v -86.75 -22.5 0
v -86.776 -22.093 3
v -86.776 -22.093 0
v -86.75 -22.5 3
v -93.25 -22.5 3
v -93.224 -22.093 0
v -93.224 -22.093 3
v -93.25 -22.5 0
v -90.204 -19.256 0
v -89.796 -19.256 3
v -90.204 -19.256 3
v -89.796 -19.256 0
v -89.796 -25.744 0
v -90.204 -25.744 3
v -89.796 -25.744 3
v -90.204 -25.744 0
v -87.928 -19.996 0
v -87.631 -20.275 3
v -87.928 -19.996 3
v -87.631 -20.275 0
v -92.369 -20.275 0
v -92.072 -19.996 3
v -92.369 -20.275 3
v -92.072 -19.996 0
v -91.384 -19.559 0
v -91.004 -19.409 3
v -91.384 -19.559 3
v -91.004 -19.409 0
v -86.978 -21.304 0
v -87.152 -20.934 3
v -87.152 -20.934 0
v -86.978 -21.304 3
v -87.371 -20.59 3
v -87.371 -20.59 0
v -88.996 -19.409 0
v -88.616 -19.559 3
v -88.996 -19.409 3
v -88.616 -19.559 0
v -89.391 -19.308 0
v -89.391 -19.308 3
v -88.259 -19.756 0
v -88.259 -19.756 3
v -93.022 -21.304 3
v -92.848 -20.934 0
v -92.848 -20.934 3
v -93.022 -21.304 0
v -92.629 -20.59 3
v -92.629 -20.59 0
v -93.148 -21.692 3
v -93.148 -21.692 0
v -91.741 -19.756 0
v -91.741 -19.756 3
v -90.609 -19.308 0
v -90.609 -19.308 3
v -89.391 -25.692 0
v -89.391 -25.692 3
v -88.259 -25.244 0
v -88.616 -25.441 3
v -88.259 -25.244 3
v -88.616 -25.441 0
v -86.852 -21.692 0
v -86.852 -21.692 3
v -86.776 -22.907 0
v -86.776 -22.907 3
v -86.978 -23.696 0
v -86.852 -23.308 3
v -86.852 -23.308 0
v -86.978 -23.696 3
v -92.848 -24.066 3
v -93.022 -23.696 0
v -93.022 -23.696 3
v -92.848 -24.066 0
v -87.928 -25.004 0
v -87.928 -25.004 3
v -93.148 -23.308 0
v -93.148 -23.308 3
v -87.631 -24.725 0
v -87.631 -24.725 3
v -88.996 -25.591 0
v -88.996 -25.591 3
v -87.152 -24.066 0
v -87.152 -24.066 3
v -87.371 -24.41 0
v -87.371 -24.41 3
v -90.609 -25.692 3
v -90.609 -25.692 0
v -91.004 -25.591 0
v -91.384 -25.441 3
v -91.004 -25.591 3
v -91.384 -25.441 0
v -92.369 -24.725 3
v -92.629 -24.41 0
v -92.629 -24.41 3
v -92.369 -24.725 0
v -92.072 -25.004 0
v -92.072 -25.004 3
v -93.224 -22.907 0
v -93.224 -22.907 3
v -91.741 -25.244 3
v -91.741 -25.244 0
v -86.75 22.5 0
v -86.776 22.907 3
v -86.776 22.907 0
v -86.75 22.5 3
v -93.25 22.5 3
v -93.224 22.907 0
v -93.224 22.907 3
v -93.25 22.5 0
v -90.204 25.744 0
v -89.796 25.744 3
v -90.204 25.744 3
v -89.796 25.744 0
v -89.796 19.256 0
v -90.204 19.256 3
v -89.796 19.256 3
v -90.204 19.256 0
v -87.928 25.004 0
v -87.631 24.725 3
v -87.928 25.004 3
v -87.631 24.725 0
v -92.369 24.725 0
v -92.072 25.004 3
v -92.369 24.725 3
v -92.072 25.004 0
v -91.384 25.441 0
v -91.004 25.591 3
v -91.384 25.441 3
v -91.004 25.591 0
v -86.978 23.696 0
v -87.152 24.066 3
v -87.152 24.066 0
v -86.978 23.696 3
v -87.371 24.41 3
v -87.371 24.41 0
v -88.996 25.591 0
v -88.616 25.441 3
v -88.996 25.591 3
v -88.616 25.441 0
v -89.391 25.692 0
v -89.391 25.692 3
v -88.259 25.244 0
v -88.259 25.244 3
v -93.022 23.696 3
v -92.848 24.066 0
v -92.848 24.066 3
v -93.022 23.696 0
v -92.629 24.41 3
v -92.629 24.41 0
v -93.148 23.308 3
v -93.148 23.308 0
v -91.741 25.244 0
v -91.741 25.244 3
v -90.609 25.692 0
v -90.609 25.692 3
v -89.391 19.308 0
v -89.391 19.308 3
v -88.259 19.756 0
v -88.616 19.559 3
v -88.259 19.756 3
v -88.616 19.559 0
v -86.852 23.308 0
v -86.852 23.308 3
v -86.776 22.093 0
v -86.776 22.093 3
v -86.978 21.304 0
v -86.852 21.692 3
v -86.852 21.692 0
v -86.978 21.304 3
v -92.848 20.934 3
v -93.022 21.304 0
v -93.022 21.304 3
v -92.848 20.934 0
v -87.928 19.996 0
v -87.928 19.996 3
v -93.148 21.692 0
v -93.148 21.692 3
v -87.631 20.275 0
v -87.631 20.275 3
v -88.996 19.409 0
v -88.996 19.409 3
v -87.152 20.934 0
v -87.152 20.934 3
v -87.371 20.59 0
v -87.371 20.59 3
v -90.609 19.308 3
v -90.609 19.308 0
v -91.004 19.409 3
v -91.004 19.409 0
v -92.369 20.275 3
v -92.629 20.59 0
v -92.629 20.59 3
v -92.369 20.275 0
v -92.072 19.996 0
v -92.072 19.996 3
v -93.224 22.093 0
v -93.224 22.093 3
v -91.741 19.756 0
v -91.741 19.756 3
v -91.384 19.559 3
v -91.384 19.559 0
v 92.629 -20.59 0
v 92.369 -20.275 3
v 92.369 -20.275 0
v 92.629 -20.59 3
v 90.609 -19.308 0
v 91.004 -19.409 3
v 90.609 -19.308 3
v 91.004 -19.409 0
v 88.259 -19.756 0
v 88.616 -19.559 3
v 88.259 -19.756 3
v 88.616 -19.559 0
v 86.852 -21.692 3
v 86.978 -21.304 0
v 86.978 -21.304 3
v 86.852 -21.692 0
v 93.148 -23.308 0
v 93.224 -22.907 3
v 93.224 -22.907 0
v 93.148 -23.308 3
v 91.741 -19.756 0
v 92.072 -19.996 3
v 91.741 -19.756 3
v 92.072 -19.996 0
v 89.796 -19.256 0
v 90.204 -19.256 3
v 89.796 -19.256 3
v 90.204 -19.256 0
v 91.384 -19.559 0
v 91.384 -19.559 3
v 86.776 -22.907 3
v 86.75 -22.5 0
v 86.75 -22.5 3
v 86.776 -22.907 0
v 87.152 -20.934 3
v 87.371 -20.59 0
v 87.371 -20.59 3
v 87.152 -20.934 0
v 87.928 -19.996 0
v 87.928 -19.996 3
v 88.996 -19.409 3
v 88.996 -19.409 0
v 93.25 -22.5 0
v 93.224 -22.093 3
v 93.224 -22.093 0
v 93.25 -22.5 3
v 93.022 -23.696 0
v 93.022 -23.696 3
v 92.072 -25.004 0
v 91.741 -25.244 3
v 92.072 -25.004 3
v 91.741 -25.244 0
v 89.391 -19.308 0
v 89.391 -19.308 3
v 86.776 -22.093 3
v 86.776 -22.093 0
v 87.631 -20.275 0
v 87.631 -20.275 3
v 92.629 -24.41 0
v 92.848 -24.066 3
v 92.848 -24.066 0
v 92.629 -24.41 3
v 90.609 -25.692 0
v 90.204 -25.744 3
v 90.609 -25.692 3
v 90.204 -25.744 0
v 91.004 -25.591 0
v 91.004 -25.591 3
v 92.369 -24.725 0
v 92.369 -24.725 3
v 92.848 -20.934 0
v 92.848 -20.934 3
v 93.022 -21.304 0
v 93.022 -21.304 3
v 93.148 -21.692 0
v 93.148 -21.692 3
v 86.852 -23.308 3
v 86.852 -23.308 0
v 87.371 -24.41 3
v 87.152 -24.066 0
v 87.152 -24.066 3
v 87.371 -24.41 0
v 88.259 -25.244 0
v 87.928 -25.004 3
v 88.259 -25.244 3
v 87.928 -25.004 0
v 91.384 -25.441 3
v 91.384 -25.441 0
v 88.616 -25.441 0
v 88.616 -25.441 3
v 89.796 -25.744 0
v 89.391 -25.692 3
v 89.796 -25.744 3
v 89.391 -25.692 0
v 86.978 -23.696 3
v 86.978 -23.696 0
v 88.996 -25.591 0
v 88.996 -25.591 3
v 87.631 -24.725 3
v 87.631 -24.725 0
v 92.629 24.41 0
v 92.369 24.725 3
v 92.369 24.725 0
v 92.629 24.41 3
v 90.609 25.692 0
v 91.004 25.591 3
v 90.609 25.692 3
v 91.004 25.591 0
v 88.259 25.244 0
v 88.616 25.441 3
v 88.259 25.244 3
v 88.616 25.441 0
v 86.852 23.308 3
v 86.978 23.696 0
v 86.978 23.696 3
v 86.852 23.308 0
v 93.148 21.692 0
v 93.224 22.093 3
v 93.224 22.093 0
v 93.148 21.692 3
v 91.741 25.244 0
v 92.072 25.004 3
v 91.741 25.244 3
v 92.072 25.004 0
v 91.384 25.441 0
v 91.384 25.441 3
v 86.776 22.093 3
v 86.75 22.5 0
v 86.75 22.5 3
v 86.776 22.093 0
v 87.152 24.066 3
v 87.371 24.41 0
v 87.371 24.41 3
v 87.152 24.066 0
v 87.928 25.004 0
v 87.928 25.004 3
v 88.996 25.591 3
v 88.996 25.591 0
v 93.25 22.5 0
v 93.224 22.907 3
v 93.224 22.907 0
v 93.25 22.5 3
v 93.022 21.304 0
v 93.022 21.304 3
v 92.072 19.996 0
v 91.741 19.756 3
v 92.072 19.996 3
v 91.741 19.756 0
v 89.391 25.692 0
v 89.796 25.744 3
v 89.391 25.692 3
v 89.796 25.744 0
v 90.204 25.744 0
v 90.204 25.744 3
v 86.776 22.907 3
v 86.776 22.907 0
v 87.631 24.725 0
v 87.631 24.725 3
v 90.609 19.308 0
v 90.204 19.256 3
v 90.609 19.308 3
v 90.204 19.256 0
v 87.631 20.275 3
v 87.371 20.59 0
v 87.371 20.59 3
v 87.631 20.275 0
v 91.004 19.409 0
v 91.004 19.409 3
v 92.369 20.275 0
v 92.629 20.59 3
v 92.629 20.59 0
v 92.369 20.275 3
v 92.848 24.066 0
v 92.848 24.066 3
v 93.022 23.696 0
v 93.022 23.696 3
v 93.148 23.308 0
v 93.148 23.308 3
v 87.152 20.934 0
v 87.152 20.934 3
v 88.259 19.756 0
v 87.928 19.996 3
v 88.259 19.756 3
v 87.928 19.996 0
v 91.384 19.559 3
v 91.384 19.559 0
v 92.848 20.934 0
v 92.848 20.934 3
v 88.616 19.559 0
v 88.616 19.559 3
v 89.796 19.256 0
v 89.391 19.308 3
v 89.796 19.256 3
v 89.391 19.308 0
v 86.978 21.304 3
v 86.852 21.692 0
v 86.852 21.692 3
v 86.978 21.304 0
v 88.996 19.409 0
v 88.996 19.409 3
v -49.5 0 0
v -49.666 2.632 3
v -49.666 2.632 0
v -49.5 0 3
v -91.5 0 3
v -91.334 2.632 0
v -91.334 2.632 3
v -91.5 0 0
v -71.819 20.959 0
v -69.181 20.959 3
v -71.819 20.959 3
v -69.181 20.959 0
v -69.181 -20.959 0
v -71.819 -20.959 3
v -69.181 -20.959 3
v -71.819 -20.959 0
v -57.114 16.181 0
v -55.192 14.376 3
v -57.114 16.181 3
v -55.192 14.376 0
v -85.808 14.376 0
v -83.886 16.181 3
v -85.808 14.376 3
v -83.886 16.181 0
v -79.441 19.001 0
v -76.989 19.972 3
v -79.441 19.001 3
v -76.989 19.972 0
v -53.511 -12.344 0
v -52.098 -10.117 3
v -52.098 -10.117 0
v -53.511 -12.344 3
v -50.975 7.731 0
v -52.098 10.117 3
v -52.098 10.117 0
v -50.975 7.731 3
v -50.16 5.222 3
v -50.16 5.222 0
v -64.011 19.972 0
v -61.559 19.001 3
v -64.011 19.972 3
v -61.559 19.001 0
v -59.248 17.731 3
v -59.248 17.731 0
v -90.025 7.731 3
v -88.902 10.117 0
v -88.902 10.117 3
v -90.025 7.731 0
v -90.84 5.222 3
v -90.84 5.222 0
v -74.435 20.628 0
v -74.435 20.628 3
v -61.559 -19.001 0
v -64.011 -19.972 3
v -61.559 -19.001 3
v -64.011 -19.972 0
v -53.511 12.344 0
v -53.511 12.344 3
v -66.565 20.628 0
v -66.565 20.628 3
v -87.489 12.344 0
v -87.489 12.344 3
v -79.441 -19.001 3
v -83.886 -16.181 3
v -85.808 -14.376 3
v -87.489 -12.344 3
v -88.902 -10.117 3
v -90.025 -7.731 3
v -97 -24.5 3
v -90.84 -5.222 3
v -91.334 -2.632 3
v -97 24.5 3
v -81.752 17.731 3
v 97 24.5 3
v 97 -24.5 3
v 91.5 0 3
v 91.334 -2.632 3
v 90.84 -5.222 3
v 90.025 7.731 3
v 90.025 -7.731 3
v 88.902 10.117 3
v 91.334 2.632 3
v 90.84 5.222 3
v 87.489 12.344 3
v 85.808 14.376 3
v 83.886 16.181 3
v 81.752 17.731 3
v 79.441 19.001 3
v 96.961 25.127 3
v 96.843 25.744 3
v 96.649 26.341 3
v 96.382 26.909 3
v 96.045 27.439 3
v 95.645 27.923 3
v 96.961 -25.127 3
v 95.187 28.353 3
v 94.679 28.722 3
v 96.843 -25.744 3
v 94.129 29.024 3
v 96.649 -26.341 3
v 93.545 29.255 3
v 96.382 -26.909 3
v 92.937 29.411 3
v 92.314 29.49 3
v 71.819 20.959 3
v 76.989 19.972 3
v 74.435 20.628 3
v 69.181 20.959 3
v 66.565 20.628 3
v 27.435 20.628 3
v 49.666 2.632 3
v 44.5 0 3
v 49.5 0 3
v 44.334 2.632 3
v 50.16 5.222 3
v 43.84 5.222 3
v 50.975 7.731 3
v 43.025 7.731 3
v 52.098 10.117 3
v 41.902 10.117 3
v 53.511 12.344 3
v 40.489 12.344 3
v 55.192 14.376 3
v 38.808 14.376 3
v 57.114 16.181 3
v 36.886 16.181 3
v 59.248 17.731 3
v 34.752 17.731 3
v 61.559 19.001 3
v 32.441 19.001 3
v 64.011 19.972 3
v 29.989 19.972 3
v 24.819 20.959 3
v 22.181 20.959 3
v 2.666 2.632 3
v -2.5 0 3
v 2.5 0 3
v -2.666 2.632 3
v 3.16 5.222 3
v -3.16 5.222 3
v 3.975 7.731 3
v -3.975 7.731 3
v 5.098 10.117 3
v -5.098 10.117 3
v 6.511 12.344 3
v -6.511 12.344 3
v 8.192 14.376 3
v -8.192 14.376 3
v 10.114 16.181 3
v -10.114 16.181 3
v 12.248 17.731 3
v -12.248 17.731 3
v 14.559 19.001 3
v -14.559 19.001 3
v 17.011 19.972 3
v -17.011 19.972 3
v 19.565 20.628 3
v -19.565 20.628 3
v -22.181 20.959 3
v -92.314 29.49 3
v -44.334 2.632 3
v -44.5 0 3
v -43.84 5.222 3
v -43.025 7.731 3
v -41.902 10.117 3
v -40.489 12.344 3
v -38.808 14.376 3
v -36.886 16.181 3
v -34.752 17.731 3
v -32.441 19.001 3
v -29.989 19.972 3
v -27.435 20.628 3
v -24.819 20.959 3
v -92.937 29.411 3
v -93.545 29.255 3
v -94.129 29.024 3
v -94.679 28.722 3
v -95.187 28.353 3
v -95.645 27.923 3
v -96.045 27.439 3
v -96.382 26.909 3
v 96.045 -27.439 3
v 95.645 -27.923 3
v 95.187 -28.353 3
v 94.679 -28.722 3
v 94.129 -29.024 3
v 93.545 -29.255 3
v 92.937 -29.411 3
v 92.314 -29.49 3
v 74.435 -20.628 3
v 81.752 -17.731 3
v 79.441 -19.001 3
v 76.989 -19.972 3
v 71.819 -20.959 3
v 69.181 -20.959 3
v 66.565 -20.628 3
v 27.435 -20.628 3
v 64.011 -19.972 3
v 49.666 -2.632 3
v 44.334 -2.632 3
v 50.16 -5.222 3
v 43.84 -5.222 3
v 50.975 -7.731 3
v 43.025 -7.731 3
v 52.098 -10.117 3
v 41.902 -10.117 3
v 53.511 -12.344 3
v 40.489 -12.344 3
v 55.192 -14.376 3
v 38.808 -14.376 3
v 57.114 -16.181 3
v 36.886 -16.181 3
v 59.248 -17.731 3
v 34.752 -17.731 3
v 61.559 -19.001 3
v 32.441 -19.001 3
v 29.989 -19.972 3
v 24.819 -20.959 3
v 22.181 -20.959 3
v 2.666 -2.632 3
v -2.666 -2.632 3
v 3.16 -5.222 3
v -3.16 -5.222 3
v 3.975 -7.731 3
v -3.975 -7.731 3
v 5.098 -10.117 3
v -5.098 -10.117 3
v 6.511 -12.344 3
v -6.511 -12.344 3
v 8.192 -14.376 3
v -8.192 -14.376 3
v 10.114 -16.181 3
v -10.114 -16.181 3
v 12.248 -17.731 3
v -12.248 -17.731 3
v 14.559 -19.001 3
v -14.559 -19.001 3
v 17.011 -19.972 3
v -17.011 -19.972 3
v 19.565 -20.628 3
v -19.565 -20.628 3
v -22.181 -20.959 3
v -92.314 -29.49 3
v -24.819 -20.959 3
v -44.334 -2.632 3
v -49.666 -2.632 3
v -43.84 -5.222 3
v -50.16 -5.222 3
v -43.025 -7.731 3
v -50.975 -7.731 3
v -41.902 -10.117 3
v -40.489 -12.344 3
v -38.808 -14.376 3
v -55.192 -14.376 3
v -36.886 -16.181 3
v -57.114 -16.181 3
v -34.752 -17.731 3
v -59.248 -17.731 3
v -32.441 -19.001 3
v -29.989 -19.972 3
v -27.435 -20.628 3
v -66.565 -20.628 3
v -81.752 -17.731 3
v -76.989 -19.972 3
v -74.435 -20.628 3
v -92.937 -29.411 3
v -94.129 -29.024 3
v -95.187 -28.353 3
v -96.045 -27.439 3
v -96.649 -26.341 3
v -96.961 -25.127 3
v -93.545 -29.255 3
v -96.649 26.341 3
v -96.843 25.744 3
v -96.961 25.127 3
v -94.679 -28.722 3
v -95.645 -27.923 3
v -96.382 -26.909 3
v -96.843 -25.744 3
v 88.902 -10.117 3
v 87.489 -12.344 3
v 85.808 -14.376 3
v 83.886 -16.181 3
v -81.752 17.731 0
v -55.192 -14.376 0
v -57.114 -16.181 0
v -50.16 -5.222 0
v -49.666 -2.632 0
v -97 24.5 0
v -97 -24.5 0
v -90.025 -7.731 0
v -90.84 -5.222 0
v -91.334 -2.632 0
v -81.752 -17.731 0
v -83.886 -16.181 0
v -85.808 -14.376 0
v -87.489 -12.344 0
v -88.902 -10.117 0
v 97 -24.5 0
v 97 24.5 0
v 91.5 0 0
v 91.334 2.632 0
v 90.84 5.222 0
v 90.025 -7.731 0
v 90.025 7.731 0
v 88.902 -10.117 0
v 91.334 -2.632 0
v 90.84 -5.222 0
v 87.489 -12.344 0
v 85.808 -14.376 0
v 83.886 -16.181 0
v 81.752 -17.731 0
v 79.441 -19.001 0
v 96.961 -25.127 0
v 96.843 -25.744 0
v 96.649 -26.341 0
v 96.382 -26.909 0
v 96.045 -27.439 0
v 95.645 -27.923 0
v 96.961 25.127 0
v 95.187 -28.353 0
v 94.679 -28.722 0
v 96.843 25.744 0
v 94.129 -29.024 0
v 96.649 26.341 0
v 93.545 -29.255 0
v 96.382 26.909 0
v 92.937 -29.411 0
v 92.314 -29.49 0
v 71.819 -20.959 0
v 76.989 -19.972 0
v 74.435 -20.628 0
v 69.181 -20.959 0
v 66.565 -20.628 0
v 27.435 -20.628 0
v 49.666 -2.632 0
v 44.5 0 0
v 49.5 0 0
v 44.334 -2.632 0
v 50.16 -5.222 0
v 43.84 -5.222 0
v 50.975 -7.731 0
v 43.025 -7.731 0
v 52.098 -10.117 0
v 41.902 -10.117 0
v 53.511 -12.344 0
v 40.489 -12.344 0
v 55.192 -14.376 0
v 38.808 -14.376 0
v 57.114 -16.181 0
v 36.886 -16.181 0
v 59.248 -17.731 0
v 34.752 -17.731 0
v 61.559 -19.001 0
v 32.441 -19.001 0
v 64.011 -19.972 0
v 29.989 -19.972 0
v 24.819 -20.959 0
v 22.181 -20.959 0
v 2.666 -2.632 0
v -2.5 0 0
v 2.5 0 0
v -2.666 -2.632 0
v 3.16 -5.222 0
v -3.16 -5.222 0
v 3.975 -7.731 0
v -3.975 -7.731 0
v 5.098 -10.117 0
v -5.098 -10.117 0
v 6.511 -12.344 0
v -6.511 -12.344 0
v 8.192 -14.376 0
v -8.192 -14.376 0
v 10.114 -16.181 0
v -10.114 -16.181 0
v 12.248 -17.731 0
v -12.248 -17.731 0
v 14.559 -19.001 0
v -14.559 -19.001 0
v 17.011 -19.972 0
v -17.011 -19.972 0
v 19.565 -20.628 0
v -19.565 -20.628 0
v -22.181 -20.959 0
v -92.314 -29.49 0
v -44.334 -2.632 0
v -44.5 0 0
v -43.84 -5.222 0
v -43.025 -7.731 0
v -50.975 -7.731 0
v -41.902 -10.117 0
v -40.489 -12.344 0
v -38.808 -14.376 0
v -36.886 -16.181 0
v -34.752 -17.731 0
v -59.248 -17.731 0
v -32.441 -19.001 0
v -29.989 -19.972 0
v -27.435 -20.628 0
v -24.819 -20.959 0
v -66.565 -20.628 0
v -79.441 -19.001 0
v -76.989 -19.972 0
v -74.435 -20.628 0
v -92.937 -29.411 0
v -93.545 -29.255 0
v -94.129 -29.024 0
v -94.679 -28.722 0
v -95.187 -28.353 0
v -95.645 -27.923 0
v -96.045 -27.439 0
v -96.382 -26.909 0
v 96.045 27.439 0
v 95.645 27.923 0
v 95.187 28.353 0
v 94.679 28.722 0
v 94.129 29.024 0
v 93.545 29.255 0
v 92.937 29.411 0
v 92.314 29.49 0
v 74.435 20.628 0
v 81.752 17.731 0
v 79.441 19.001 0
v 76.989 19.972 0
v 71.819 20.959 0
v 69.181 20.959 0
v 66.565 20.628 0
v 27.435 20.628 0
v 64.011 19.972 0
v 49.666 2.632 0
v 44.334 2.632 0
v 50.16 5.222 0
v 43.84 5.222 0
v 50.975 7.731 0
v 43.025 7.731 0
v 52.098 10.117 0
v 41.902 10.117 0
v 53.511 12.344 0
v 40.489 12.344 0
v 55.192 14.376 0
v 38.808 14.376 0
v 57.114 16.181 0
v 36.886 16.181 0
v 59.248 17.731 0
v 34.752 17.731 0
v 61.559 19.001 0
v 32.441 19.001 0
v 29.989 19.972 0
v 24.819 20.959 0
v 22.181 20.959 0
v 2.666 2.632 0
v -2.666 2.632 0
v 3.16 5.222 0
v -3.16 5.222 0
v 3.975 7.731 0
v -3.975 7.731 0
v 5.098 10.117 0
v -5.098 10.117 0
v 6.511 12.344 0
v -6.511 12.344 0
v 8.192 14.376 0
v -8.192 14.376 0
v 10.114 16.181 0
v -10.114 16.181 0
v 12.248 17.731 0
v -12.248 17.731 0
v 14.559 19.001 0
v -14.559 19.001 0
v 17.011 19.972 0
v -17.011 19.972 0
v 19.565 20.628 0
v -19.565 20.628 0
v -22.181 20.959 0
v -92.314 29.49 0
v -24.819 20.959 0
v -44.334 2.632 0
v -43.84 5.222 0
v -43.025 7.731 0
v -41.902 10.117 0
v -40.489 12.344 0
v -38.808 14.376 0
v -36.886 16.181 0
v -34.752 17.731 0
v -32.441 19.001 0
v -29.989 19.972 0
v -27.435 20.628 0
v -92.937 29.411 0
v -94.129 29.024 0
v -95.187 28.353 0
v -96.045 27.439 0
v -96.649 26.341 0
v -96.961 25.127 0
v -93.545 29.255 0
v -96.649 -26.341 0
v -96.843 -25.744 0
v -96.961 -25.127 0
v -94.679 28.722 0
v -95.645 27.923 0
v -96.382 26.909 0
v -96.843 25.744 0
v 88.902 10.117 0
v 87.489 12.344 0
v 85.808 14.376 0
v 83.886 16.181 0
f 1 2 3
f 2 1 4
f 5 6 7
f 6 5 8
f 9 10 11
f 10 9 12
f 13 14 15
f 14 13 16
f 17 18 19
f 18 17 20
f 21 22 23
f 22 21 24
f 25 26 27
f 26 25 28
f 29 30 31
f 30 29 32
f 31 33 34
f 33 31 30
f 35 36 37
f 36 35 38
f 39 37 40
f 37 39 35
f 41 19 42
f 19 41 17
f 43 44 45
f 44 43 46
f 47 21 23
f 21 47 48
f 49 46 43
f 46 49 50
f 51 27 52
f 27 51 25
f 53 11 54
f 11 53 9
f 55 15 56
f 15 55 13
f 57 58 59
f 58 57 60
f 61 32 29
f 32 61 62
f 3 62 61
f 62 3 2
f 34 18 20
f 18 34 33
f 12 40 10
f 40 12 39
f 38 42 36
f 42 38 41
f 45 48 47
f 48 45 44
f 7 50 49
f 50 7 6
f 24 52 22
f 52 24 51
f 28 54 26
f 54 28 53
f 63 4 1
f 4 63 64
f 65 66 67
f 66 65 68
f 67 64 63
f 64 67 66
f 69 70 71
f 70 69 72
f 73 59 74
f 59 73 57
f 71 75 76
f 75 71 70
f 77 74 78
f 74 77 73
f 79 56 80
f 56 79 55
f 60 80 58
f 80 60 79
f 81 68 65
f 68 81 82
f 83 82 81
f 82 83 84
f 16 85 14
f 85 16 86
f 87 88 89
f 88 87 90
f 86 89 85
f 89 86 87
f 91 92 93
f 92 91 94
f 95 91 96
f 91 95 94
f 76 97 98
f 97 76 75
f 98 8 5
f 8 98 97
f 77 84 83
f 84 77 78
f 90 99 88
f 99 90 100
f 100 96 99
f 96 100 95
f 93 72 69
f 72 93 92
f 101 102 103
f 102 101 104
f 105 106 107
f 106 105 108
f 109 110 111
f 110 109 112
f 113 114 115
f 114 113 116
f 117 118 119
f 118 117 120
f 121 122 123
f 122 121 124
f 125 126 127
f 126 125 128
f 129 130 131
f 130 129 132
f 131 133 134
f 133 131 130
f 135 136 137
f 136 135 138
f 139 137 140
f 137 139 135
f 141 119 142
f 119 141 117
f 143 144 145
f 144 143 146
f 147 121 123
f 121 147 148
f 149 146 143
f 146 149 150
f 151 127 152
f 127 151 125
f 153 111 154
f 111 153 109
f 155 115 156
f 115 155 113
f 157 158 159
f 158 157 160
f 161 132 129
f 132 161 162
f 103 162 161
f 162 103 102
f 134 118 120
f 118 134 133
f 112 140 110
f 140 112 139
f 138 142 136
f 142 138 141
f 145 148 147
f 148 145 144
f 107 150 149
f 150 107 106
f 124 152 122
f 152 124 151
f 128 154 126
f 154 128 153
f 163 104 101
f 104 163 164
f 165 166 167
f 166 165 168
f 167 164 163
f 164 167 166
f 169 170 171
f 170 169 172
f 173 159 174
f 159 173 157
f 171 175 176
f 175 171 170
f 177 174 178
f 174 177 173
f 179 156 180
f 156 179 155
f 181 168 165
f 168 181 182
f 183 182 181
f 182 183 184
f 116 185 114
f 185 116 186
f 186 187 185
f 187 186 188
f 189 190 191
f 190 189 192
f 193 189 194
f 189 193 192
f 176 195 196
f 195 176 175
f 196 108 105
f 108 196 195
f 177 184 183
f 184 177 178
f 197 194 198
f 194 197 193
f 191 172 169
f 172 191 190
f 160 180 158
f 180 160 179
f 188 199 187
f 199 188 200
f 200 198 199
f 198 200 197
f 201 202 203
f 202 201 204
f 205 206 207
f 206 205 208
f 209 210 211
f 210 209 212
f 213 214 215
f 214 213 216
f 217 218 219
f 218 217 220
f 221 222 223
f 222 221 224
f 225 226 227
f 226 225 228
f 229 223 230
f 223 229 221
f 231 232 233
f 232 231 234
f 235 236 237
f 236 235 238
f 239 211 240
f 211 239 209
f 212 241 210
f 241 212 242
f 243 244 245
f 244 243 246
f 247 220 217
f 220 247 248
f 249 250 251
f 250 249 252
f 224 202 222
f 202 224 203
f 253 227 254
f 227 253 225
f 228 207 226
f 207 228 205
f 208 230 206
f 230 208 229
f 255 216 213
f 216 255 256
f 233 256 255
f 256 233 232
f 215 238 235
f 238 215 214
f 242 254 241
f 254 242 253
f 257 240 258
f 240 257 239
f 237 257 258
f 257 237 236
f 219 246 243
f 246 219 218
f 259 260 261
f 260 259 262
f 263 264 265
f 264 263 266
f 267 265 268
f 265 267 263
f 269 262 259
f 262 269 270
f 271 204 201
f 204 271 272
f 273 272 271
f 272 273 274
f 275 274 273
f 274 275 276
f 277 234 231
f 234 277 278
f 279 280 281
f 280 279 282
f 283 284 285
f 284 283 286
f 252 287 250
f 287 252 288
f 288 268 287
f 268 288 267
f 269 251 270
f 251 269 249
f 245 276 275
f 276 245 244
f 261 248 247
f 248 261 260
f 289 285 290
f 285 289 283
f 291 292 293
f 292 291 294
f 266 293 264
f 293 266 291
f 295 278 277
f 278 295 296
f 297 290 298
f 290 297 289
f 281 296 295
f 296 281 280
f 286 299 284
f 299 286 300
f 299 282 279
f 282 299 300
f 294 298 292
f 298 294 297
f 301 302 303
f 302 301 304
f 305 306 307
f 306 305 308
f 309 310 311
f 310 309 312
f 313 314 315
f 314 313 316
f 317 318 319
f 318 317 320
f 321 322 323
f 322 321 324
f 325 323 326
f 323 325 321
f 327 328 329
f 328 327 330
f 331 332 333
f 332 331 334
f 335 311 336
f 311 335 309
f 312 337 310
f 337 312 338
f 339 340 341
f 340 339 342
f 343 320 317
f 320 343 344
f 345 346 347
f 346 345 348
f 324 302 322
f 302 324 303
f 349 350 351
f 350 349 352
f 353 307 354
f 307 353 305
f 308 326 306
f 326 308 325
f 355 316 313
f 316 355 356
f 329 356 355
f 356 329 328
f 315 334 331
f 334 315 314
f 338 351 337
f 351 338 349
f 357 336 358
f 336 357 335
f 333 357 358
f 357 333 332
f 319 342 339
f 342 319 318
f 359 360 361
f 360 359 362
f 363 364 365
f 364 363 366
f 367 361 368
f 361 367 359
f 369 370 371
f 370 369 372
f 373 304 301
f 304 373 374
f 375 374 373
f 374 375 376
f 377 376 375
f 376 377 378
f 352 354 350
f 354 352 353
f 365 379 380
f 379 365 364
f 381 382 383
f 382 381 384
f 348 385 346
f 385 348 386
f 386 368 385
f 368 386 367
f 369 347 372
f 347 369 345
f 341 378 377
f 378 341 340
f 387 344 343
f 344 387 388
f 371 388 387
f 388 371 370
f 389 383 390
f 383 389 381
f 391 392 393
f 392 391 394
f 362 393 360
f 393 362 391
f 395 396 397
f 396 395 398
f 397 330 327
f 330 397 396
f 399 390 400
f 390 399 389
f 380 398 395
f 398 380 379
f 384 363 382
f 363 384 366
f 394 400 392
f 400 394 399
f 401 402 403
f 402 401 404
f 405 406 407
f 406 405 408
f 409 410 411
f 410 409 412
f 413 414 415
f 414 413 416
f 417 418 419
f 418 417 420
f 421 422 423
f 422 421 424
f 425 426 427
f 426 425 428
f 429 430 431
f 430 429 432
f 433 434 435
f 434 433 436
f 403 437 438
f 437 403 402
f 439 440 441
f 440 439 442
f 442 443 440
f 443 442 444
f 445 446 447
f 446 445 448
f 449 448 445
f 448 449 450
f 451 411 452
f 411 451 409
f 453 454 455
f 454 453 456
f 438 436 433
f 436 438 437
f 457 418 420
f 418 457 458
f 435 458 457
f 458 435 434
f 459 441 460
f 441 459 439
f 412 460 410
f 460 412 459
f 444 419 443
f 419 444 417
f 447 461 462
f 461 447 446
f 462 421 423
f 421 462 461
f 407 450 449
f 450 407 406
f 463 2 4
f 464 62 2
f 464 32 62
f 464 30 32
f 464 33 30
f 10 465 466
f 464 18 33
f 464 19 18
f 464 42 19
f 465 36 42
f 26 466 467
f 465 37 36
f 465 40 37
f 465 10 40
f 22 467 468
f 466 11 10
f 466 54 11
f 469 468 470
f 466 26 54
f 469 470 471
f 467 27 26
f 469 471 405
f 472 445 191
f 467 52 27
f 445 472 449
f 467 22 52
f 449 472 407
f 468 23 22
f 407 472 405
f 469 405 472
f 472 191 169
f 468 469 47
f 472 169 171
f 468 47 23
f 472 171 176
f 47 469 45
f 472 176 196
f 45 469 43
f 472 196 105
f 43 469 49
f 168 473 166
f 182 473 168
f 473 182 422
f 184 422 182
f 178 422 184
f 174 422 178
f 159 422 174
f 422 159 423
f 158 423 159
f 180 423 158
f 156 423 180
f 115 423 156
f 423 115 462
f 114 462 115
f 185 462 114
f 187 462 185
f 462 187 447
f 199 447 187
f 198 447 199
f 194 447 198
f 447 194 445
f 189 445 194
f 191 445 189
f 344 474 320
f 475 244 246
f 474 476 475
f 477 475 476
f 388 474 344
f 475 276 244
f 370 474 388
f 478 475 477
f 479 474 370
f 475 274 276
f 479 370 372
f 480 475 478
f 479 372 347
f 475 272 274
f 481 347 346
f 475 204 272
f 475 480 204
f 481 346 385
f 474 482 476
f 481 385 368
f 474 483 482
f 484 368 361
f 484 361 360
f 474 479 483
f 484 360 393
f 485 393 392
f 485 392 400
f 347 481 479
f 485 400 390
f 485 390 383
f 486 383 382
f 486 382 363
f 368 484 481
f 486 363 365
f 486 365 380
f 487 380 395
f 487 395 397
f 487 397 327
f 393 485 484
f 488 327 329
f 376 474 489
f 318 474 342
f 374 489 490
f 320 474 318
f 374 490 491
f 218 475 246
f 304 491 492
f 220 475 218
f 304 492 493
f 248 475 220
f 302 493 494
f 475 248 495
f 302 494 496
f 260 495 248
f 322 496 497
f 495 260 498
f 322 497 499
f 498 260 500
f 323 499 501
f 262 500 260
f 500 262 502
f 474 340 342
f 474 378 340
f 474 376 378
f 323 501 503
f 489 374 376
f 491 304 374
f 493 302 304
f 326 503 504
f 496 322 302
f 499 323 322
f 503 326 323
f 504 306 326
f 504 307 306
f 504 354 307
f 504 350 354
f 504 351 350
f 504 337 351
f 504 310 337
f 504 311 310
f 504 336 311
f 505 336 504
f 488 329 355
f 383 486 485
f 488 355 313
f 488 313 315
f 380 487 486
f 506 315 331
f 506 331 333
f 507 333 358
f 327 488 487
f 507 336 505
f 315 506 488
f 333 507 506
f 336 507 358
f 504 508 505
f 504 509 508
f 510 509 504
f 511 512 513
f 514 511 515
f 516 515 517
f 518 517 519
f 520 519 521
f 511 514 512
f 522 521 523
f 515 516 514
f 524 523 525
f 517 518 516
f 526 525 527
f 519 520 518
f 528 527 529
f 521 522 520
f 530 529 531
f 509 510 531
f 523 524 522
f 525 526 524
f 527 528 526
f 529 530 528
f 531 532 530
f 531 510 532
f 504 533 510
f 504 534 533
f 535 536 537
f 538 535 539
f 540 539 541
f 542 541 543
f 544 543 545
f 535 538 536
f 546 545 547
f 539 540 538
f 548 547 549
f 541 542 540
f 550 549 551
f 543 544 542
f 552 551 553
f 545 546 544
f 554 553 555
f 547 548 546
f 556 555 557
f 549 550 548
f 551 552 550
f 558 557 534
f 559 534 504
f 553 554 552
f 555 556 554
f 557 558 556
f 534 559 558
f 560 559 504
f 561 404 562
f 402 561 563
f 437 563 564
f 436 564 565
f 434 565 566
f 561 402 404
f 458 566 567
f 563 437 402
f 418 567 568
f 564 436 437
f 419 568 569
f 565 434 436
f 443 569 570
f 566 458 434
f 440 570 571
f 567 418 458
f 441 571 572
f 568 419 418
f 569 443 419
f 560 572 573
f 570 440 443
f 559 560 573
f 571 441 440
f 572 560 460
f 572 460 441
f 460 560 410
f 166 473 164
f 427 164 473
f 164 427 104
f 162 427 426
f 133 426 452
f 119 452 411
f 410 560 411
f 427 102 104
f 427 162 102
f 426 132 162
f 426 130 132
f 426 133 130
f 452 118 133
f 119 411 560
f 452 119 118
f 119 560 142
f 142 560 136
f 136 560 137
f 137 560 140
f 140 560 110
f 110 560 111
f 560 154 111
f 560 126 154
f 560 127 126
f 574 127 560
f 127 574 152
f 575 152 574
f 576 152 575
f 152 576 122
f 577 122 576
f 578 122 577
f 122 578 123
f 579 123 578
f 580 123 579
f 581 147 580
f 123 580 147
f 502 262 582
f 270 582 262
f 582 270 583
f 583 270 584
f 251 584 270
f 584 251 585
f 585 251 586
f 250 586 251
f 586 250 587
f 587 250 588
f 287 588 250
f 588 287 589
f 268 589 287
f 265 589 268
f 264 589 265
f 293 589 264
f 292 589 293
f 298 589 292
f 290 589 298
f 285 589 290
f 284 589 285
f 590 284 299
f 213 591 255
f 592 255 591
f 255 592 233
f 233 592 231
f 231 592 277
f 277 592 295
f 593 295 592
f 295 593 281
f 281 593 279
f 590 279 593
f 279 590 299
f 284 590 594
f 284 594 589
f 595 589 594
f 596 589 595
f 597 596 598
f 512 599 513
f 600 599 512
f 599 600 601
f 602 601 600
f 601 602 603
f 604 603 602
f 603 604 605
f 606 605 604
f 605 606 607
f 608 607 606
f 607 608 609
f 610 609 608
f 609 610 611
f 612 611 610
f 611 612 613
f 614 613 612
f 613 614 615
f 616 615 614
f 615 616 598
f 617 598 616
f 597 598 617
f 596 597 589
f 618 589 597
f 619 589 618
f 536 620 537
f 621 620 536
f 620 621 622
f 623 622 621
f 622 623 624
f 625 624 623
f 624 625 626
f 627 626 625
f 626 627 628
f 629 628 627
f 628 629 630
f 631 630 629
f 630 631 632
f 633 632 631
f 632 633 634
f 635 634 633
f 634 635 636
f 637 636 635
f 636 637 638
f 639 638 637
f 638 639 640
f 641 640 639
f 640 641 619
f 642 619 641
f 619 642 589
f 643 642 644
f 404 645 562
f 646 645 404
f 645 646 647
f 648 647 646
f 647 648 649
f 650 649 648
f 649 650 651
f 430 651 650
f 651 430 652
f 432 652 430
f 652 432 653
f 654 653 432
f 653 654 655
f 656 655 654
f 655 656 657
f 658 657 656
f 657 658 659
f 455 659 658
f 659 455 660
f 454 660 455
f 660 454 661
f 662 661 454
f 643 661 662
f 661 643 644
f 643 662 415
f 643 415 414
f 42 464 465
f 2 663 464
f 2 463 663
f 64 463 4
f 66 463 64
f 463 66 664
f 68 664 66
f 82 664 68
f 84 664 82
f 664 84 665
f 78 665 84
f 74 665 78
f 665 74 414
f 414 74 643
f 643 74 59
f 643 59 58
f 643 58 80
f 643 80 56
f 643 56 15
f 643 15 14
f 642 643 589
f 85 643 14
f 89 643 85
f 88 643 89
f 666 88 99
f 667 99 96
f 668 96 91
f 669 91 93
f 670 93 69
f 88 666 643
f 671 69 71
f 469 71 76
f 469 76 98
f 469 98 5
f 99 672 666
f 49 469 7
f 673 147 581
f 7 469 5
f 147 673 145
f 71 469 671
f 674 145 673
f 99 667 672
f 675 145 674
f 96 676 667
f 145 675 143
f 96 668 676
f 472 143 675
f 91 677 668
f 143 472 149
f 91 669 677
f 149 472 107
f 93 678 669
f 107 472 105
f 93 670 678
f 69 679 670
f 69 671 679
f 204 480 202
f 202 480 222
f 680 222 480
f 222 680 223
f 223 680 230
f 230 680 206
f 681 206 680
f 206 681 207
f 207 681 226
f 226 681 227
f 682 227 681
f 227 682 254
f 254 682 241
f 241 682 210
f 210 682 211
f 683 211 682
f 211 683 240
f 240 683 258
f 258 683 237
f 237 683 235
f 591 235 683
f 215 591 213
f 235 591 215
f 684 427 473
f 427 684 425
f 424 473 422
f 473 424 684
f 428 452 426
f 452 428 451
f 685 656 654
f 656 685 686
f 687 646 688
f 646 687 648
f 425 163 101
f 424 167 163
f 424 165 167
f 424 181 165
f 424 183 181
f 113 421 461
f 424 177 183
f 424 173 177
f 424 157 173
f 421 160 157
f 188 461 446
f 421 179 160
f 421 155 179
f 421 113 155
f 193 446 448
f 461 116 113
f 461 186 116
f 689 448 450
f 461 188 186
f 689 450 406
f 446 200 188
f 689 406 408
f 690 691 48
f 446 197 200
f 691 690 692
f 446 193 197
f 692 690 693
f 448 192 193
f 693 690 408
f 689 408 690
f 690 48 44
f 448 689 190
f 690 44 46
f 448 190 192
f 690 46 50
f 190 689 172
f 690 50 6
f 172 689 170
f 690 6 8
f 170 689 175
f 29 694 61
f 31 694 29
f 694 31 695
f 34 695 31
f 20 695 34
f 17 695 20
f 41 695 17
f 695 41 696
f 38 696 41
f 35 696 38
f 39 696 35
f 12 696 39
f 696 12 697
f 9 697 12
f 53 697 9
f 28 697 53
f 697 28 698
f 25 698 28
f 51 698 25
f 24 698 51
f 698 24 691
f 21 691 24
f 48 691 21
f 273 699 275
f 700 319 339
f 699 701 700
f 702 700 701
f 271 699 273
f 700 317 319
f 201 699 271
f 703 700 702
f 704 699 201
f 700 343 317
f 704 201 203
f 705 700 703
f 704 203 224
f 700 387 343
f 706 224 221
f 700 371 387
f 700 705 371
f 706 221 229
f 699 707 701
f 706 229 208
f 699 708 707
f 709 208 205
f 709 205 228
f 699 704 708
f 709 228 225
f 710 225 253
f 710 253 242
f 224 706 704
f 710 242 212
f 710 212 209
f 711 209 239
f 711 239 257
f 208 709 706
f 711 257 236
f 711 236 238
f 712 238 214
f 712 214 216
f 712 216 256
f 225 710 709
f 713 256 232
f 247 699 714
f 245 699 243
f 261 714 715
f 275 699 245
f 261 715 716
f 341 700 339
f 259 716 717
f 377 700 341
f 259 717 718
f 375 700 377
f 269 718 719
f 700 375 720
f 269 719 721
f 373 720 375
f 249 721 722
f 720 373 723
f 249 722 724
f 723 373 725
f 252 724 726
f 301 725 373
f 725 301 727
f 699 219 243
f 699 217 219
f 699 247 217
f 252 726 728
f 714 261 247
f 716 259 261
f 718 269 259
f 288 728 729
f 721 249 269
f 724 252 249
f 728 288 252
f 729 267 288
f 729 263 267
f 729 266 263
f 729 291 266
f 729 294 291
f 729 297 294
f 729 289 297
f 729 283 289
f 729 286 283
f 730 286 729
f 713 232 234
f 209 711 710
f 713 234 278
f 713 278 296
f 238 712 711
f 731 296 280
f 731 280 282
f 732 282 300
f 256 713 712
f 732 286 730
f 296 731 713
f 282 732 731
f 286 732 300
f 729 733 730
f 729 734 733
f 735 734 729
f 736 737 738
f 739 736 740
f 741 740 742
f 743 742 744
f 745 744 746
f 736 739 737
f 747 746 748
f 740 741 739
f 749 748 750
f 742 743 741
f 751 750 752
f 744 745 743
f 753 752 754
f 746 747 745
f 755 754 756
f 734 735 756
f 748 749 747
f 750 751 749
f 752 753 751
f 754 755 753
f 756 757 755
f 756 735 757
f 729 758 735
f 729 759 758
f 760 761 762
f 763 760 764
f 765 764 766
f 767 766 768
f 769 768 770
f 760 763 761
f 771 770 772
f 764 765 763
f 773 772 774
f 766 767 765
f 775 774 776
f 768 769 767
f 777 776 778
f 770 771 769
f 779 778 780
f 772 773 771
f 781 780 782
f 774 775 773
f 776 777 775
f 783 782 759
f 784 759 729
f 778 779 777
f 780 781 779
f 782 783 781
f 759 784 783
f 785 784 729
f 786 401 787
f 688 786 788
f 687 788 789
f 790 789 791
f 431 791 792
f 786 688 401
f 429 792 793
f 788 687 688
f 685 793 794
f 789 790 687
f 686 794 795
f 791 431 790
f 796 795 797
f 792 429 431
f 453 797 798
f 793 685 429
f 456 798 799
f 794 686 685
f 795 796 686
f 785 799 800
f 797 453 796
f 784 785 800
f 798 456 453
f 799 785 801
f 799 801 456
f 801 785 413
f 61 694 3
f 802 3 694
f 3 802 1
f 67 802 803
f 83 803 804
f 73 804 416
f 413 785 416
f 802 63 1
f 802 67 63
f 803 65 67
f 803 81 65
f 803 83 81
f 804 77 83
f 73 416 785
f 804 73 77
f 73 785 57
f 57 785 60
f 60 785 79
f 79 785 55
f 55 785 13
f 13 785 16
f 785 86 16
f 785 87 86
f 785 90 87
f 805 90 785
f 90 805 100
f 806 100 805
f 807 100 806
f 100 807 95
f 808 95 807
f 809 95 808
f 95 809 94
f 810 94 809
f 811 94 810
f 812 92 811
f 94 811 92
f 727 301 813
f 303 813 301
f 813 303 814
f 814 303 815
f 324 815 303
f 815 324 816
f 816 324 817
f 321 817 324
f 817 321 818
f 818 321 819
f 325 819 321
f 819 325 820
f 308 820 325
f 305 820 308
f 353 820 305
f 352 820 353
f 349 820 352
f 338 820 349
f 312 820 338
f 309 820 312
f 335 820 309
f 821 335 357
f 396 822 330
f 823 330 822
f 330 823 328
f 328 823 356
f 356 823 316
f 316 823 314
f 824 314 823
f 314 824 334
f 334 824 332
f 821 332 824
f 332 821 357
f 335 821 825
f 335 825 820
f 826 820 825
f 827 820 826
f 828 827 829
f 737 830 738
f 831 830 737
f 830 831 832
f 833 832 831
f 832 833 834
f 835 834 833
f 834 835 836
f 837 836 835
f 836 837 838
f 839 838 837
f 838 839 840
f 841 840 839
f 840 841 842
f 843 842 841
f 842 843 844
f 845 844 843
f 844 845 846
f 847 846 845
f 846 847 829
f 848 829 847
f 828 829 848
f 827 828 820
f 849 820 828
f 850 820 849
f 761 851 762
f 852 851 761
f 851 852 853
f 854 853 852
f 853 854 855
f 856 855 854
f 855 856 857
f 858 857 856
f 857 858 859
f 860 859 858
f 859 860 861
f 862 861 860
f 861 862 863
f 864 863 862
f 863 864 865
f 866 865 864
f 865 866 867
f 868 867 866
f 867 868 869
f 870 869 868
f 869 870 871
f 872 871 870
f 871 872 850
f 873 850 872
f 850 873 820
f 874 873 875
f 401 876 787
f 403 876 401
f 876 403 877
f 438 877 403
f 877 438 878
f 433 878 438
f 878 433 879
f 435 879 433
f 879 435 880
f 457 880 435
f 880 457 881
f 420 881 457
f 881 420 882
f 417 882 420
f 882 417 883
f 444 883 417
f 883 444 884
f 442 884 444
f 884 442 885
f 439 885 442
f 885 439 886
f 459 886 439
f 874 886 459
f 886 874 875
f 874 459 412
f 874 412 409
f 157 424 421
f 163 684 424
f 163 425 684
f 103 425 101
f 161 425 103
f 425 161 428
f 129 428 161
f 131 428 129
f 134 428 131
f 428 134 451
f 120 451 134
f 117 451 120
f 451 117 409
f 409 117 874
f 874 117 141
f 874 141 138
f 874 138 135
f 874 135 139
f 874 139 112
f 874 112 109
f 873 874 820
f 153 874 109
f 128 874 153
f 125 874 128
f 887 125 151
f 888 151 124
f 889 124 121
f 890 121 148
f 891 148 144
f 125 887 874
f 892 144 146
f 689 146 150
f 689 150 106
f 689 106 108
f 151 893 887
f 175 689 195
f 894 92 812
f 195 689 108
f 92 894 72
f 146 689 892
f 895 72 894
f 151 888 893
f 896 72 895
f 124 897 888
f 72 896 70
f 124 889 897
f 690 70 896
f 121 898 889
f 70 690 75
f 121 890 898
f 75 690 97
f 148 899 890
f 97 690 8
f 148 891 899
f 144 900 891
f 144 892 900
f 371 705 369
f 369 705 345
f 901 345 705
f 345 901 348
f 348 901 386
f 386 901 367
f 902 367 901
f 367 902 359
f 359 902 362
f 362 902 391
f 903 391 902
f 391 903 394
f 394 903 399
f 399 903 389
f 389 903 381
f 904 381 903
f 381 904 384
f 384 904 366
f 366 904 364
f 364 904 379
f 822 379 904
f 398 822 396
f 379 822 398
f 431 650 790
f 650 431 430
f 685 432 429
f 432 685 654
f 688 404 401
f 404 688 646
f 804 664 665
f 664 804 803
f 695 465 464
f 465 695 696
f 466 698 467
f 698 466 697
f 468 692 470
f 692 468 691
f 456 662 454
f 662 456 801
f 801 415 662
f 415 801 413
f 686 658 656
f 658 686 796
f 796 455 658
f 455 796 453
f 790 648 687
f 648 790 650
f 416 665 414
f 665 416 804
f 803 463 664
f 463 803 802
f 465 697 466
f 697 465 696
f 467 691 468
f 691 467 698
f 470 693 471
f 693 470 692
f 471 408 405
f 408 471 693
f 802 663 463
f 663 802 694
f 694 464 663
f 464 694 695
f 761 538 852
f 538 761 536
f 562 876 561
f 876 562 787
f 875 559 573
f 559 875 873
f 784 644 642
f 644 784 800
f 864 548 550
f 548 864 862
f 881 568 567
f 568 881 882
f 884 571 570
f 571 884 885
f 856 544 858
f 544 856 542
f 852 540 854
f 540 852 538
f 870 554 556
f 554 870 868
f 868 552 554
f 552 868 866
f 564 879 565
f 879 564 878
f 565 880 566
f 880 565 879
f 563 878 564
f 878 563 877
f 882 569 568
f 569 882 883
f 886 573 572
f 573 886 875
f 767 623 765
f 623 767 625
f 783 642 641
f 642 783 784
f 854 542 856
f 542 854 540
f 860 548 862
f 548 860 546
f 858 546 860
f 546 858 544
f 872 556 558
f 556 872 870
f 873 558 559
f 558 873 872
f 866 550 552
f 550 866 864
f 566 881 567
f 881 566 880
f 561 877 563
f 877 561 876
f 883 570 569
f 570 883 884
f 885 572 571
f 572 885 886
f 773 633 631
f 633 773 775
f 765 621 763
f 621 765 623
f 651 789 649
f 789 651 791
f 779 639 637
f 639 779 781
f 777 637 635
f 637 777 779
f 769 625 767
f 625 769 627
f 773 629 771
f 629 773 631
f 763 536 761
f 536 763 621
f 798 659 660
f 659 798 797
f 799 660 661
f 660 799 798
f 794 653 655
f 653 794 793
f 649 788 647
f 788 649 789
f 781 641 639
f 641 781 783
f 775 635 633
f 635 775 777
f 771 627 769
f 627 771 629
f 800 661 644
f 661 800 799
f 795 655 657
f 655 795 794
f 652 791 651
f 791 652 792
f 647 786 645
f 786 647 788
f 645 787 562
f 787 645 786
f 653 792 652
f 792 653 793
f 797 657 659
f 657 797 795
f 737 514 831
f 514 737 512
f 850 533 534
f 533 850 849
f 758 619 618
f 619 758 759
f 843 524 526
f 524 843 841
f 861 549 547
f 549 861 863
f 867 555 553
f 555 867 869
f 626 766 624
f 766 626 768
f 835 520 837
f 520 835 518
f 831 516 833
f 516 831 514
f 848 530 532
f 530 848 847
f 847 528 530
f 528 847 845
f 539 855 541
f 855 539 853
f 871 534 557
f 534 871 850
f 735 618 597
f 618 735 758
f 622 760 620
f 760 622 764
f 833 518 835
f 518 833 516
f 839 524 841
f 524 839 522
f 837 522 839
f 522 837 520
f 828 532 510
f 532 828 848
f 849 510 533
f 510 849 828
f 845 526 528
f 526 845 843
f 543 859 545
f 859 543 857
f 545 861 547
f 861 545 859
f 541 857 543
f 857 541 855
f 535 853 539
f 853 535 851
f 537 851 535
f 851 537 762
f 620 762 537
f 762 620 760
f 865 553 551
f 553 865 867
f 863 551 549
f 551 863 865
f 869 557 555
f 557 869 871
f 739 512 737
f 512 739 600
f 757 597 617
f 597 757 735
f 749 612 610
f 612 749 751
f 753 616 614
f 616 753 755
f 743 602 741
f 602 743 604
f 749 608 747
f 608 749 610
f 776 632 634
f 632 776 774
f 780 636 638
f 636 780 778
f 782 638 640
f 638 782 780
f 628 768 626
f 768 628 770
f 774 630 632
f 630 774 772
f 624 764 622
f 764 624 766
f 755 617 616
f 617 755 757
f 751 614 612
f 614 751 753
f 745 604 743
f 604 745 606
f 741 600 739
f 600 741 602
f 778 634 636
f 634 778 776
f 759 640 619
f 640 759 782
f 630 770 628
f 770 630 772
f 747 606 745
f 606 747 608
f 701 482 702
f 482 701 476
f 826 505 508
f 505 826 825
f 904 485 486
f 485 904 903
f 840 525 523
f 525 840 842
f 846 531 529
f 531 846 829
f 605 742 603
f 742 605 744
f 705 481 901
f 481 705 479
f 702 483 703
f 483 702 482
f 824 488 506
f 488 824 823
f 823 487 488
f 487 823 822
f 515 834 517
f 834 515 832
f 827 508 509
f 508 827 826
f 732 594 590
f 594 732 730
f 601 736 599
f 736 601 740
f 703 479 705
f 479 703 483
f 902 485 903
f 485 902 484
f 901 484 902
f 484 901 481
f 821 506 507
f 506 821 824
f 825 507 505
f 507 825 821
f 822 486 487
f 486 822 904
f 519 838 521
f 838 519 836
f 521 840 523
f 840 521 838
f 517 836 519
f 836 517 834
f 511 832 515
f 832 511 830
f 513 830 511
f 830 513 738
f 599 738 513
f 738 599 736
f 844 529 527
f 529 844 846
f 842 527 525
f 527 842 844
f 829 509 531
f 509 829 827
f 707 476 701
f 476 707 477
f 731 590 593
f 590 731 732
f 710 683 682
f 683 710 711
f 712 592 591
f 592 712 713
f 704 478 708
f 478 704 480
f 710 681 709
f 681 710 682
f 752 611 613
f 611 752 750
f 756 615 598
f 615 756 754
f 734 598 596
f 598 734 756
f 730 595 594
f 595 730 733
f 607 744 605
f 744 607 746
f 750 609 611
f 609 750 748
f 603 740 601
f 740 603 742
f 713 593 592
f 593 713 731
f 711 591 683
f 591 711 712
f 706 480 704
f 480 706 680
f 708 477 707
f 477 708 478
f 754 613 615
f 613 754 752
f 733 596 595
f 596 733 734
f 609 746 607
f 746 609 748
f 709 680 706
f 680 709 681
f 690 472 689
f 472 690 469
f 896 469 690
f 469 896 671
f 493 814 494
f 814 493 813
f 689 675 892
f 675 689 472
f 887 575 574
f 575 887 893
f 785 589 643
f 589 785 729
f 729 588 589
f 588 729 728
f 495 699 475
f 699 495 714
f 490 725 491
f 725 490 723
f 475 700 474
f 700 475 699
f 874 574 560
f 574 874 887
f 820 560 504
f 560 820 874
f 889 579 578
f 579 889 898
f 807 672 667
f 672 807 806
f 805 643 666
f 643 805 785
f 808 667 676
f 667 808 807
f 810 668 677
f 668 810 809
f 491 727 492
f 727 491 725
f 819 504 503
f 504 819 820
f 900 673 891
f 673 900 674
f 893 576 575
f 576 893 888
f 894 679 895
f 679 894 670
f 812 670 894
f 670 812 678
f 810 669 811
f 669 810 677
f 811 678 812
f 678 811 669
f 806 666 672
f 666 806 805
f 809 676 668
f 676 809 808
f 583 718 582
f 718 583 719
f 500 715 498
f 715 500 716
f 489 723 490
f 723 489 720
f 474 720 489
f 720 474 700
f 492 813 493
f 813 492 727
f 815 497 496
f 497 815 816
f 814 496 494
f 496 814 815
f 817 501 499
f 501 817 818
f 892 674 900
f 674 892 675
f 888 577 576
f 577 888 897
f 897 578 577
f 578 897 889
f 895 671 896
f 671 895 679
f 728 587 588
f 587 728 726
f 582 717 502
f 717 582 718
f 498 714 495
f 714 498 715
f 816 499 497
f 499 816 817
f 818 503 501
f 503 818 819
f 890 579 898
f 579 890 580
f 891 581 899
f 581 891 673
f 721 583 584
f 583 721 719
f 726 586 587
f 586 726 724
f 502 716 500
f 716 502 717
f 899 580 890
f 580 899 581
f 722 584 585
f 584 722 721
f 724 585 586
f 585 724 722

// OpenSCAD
$fn = 50;


difference() {
	union() {
		hull() {
			translate(v = [-92.0000000000, 24.5000000000, 0]) {
				cylinder(h = 3, r = 5);
			}
			translate(v = [92.0000000000, 24.5000000000, 0]) {
				cylinder(h = 3, r = 5);
			}
			translate(v = [-92.0000000000, -24.5000000000, 0]) {
				cylinder(h = 3, r = 5);
			}
			translate(v = [92.0000000000, -24.5000000000, 0]) {
				cylinder(h = 3, r = 5);
			}
		}
	}
	union() {
		#translate(v = [-90.0000000000, -22.5000000000, -100.0000000000]) {
			cylinder(h = 200, r = 3.2500000000);
		}
		#translate(v = [-90.0000000000, 22.5000000000, -100.0000000000]) {
			cylinder(h = 200, r = 3.2500000000);
		}
		#translate(v = [90.0000000000, -22.5000000000, -100.0000000000]) {
			cylinder(h = 200, r = 3.2500000000);
		}
		#translate(v = [90.0000000000, 22.5000000000, -100.0000000000]) {
			cylinder(h = 200, r = 3.2500000000);
		}
		#translate(v = [-70.5000000000, 0, 0]) {
			cylinder(h = 3, r = 21.0000000000);
		}
		#translate(v = [-23.5000000000, 0, 0]) {
			cylinder(h = 3, r = 21.0000000000);
		}
		#translate(v = [23.5000000000, 0, 0]) {
			cylinder(h = 3, r = 21.0000000000);
		}
		#translate(v = [70.5000000000, 0, 0]) {
			cylinder(h = 3, r = 21.0000000000);
		}
	}
}
